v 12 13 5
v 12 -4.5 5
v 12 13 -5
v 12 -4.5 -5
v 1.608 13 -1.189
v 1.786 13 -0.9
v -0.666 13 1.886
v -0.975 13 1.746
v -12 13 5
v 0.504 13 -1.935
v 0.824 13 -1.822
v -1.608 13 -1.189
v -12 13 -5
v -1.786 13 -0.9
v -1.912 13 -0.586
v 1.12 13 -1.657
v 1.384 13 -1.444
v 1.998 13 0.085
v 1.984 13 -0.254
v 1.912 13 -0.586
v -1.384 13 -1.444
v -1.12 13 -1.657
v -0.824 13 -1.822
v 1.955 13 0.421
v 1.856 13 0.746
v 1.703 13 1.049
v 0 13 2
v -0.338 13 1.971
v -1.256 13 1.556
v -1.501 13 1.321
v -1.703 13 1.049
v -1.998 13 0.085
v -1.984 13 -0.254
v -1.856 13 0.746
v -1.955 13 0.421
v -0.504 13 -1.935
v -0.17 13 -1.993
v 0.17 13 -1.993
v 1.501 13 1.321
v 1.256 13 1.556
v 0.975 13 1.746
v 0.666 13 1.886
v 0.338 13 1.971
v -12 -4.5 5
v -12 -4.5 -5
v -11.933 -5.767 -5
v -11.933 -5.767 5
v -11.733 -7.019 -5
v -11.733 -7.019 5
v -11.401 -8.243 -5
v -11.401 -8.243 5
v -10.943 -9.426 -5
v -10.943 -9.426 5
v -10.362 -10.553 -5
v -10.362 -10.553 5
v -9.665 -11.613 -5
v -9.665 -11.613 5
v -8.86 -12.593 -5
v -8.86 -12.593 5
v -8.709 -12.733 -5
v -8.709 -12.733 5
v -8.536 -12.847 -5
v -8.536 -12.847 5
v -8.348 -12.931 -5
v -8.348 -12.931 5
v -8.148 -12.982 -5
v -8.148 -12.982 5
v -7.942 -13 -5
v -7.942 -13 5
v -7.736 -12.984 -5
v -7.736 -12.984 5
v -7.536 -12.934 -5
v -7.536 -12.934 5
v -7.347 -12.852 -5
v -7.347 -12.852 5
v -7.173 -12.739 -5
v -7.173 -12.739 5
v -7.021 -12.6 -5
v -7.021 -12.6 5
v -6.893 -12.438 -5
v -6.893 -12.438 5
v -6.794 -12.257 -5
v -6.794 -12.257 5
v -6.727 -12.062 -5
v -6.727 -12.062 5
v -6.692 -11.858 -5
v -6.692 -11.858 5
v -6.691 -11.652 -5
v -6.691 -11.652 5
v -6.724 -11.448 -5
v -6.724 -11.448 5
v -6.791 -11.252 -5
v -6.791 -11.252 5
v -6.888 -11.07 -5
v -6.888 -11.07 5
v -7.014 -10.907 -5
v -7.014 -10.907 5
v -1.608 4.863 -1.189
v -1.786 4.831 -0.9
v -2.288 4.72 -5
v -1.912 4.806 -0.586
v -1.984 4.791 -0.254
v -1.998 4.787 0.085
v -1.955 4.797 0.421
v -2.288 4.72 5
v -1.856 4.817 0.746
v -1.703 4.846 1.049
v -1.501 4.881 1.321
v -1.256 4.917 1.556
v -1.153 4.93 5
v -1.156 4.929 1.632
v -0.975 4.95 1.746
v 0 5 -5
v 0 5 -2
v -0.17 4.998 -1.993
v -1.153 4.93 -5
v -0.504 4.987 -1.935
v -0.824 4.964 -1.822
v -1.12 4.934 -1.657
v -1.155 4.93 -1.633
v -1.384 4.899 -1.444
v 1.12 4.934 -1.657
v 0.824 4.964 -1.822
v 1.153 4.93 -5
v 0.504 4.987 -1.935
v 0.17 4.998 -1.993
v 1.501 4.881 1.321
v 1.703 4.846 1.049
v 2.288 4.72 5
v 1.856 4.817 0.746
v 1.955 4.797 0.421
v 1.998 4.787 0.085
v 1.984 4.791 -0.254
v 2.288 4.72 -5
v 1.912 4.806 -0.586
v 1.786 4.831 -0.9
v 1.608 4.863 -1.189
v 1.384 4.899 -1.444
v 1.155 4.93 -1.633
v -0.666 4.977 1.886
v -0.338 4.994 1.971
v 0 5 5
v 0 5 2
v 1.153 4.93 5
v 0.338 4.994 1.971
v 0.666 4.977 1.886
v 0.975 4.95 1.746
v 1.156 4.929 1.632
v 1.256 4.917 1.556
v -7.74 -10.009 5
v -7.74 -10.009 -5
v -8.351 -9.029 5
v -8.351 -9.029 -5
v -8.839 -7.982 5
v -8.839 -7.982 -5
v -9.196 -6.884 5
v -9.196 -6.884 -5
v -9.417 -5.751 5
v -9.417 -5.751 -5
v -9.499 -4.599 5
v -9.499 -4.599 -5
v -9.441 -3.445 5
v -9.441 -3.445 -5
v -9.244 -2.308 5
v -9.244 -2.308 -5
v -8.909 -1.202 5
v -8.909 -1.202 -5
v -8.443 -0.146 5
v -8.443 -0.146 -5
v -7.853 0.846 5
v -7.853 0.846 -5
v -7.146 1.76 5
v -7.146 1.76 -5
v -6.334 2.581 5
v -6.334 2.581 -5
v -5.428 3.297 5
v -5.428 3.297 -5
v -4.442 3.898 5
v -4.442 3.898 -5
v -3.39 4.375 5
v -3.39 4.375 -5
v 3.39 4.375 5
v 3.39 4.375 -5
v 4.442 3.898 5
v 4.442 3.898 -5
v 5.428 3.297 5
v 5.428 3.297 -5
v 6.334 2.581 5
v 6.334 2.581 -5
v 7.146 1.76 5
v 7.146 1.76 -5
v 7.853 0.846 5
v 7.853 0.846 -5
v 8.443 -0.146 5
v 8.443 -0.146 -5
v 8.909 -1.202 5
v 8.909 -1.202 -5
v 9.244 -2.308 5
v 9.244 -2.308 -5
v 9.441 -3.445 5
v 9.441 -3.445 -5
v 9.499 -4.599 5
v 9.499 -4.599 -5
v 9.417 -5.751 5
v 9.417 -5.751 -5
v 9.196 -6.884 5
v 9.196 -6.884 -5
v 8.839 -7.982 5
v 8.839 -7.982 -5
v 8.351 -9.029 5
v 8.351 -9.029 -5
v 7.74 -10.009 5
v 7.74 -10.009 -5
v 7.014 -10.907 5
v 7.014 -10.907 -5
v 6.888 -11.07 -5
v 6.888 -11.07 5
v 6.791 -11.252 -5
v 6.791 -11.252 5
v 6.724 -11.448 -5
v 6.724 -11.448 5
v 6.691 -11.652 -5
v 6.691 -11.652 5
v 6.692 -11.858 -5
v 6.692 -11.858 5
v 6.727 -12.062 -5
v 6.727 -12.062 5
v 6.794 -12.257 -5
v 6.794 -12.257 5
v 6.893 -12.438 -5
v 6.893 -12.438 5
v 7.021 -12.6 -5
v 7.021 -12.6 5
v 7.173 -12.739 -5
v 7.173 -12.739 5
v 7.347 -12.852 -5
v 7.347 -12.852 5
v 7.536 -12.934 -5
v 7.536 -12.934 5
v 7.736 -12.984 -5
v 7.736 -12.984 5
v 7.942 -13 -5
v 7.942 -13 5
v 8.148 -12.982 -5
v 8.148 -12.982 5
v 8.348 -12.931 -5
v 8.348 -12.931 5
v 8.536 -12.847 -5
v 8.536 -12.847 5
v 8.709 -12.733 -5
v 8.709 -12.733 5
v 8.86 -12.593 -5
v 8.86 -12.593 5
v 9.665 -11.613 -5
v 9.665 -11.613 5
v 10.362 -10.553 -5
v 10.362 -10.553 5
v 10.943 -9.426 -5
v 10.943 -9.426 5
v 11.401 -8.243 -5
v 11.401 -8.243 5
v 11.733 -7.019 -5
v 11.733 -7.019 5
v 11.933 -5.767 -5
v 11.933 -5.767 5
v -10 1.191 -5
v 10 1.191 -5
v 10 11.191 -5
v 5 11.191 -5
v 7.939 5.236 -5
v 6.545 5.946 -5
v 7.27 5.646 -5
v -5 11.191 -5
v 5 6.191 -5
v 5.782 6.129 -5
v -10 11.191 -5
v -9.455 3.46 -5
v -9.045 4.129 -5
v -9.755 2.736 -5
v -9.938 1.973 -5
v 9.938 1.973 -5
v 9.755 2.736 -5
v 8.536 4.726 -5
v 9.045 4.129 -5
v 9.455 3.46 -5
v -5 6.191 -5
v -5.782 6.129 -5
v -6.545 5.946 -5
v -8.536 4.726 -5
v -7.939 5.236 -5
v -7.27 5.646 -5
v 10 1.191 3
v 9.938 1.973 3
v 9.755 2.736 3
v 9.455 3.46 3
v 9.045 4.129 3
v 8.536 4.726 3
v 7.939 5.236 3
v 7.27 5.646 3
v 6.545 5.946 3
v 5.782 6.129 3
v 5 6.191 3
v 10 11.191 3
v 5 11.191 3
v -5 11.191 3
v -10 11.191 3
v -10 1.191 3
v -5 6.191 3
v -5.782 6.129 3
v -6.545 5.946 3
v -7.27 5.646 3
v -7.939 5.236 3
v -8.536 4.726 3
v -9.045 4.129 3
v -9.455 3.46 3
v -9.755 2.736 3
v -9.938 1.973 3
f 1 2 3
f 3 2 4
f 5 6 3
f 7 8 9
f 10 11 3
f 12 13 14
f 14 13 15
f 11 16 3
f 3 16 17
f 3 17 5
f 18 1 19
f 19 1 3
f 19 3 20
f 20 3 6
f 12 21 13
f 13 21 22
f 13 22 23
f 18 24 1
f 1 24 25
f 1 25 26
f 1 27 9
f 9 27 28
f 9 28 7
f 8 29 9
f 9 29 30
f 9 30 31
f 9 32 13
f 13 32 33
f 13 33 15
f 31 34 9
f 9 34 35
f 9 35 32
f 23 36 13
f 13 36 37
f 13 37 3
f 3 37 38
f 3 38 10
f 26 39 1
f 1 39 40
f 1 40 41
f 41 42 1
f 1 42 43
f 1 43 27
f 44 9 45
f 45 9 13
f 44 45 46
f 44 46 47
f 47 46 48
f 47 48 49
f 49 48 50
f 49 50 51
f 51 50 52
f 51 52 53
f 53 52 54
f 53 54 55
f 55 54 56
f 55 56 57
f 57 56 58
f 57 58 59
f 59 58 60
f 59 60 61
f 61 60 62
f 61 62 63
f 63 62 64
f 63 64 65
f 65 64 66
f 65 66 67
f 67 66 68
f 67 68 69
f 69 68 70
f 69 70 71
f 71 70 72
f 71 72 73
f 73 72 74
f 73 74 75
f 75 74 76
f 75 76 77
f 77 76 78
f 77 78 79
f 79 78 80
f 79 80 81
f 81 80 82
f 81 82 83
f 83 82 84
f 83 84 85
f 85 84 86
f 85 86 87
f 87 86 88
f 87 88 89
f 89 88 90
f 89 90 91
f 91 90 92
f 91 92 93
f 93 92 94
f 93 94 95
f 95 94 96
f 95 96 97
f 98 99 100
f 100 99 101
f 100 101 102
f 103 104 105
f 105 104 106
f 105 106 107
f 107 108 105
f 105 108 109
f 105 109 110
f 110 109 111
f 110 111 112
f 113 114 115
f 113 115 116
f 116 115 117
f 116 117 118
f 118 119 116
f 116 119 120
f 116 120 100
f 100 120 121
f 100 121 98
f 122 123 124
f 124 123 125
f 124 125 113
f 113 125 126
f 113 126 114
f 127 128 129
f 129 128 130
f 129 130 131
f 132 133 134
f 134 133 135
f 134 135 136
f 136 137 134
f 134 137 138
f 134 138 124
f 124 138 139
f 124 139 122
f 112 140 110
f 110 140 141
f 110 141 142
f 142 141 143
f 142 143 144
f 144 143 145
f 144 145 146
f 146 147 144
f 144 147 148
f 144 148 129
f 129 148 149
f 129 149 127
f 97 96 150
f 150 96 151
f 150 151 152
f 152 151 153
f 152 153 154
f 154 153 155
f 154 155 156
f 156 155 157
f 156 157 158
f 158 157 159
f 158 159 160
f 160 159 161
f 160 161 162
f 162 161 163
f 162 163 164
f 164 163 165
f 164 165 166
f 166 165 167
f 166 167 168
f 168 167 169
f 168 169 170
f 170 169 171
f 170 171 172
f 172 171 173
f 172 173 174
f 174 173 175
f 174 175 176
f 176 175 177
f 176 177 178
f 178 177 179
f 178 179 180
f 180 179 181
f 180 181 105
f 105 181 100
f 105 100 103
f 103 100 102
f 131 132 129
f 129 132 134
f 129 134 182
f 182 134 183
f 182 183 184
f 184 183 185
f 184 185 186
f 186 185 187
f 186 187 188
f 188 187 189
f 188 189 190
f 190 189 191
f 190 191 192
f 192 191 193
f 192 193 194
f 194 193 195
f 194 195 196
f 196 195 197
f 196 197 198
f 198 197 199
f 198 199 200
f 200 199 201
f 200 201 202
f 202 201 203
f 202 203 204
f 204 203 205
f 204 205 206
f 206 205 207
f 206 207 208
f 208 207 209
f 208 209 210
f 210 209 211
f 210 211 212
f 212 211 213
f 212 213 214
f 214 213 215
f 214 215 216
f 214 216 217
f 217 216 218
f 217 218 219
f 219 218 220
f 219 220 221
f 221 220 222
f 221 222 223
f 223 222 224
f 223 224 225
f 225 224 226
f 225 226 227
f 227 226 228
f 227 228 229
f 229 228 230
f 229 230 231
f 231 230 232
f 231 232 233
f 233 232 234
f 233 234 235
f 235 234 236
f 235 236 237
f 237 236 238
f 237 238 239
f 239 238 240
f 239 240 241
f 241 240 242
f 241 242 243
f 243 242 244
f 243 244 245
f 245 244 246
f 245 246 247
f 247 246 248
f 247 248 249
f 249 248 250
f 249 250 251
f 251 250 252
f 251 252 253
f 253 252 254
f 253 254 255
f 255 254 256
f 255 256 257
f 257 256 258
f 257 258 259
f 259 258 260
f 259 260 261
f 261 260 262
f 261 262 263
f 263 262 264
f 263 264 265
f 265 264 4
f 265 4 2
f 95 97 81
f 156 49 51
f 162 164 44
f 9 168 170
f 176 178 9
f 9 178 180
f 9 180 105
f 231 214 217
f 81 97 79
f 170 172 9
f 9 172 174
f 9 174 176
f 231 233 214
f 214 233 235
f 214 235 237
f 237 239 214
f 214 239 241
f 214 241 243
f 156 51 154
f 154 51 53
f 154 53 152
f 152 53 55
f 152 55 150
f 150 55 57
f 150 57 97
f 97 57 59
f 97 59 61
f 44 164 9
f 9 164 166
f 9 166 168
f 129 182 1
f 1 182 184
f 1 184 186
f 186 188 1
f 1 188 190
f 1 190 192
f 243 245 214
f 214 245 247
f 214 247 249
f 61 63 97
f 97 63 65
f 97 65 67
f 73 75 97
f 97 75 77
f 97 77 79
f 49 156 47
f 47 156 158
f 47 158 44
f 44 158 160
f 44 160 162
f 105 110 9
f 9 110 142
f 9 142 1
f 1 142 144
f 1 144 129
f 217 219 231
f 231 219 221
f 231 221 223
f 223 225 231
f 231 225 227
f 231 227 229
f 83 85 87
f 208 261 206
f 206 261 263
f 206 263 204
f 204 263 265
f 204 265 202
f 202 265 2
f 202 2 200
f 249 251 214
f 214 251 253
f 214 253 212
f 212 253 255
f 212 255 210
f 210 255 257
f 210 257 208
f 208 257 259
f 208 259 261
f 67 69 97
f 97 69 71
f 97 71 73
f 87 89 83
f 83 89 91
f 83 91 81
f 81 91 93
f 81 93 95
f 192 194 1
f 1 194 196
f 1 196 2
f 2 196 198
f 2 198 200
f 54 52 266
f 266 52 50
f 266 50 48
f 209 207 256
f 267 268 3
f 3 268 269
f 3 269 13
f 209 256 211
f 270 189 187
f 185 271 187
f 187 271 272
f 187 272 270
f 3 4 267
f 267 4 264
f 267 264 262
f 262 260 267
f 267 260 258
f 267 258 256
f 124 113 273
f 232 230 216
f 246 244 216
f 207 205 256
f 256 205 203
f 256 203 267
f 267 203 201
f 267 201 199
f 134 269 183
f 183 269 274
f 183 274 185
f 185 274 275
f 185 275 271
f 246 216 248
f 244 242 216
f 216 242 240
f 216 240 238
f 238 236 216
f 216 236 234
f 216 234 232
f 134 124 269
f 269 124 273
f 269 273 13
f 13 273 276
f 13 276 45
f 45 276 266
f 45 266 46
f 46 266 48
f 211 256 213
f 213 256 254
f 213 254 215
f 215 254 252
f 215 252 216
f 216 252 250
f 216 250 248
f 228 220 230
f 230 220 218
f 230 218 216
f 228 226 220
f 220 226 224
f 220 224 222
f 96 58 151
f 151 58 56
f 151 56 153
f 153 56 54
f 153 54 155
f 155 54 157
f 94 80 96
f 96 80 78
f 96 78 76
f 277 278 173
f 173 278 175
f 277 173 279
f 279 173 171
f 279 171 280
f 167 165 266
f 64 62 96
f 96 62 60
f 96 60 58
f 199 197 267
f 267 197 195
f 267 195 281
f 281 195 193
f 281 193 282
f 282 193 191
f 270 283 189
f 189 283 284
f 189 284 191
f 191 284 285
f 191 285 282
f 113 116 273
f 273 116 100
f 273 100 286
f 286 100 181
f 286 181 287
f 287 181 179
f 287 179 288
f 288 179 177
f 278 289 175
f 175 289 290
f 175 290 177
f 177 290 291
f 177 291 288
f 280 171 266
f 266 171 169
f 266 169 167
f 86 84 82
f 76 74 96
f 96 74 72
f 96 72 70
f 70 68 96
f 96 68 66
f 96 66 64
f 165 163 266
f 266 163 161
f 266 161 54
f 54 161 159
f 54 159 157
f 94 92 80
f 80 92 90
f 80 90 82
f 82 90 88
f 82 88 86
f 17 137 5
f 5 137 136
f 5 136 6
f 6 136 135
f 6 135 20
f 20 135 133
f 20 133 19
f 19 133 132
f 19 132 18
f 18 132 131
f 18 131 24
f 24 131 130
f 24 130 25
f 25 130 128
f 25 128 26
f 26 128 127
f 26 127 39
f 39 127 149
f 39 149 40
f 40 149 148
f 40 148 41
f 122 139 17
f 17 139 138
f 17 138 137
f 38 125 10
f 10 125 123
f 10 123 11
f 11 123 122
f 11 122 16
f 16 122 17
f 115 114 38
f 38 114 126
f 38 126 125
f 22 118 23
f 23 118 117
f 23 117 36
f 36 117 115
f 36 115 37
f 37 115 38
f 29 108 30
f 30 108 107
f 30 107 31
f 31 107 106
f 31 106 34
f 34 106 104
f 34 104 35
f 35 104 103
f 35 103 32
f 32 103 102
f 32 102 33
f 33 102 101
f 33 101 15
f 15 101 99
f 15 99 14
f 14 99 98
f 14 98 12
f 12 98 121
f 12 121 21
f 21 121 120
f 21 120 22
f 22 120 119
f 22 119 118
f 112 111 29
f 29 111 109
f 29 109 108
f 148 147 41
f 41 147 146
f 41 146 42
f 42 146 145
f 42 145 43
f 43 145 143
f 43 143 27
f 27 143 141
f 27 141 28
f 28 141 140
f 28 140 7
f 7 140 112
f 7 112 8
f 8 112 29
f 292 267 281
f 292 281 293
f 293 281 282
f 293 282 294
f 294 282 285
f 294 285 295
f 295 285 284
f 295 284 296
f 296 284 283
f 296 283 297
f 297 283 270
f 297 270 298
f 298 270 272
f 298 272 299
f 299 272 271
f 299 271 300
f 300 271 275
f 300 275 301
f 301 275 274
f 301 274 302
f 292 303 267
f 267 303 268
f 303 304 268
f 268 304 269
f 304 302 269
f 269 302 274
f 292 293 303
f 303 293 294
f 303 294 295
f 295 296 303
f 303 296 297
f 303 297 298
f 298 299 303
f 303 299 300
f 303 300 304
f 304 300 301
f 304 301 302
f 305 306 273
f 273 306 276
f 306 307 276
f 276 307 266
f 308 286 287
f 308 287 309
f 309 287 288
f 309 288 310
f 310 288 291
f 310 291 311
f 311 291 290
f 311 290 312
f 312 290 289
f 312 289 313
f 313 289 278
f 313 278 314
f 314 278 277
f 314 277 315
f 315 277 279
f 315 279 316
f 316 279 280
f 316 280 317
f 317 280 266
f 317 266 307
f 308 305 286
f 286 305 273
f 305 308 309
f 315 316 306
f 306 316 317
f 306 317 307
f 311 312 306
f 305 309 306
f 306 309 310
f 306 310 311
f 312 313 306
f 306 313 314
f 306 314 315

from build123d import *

# Parameters (mm, degrees)
BOSS_EXTRUDE2_DEPTH = 5
SKETCH5_R           = 2
CUT_EXTRUDE1_DEPTH  = 9
CUT_EXTRUDE2_DEPTH  = 8


with BuildPart() as part:
    # Sketch3 → Boss-Extrude2 (new, symmetric)
    with BuildSketch(Plane.XY):
        with BuildLine():
            Line((-12, -4.5), (-12, 13))
            Line((-12, 13), (12, 13))
            Line((12, 13), (12, -4.5))
            ThreePointArc((12, -4.5), (11.187544084, -8.840375258), (8.860190437, -12.593023256))
            ThreePointArc((8.860190437, -12.593023256), (7.094230677, -12.672936504), (7.014317429, -10.906976744))
            ThreePointArc((7.014317429, -10.906976744), (0, 5), (-7.014317429, -10.906976744))
            ThreePointArc((-7.014317429, -10.906976744), (-7.094230677, -12.672936504), (-8.860190437, -12.593023256))
            ThreePointArc((-8.860190437, -12.593023256), (-11.187544084, -8.840375258), (-12, -4.5))
        make_face()
    extrude(amount=BOSS_EXTRUDE2_DEPTH, both=True)

    # Sketch5 → Cut-Extrude1 (cut)
    with BuildSketch(Plane(origin=(0, 13, 0), x_dir=(1, 0, 0), z_dir=(0, 1, 0))):
        with Locations(Location((0, 0, 0), (0, 0, 270))):
            Circle(SKETCH5_R)
    extrude(amount=-CUT_EXTRUDE1_DEPTH, mode=Mode.SUBTRACT)

    # Sketch7 → Cut-Extrude2 (cut)
    with BuildSketch(Plane(origin=(0, 0, -5), x_dir=(-1, 0, 0), z_dir=(0, 0, -1))):
        with BuildLine():
            Line((10, 11.190527755), (10, 1.190527755))
            ThreePointArc((10, 1.190527755), (8.535533906, 4.726061661), (5, 6.190527755))
            Line((5, 6.190527755), (5, 11.190527755))
            Line((5, 11.190527755), (10, 11.190527755))
        make_face()
        with BuildLine():
            Line((-10, 11.190527755), (-10, 1.190527755))
            ThreePointArc((-10, 1.190527755), (-8.535533906, 4.726061661), (-5, 6.190527755))
            Line((-5, 6.190527755), (-5, 11.190527755))
            Line((-5, 11.190527755), (-10, 11.190527755))
        make_face()
    extrude(amount=-CUT_EXTRUDE2_DEPTH, mode=Mode.SUBTRACT)


solid = part.part
